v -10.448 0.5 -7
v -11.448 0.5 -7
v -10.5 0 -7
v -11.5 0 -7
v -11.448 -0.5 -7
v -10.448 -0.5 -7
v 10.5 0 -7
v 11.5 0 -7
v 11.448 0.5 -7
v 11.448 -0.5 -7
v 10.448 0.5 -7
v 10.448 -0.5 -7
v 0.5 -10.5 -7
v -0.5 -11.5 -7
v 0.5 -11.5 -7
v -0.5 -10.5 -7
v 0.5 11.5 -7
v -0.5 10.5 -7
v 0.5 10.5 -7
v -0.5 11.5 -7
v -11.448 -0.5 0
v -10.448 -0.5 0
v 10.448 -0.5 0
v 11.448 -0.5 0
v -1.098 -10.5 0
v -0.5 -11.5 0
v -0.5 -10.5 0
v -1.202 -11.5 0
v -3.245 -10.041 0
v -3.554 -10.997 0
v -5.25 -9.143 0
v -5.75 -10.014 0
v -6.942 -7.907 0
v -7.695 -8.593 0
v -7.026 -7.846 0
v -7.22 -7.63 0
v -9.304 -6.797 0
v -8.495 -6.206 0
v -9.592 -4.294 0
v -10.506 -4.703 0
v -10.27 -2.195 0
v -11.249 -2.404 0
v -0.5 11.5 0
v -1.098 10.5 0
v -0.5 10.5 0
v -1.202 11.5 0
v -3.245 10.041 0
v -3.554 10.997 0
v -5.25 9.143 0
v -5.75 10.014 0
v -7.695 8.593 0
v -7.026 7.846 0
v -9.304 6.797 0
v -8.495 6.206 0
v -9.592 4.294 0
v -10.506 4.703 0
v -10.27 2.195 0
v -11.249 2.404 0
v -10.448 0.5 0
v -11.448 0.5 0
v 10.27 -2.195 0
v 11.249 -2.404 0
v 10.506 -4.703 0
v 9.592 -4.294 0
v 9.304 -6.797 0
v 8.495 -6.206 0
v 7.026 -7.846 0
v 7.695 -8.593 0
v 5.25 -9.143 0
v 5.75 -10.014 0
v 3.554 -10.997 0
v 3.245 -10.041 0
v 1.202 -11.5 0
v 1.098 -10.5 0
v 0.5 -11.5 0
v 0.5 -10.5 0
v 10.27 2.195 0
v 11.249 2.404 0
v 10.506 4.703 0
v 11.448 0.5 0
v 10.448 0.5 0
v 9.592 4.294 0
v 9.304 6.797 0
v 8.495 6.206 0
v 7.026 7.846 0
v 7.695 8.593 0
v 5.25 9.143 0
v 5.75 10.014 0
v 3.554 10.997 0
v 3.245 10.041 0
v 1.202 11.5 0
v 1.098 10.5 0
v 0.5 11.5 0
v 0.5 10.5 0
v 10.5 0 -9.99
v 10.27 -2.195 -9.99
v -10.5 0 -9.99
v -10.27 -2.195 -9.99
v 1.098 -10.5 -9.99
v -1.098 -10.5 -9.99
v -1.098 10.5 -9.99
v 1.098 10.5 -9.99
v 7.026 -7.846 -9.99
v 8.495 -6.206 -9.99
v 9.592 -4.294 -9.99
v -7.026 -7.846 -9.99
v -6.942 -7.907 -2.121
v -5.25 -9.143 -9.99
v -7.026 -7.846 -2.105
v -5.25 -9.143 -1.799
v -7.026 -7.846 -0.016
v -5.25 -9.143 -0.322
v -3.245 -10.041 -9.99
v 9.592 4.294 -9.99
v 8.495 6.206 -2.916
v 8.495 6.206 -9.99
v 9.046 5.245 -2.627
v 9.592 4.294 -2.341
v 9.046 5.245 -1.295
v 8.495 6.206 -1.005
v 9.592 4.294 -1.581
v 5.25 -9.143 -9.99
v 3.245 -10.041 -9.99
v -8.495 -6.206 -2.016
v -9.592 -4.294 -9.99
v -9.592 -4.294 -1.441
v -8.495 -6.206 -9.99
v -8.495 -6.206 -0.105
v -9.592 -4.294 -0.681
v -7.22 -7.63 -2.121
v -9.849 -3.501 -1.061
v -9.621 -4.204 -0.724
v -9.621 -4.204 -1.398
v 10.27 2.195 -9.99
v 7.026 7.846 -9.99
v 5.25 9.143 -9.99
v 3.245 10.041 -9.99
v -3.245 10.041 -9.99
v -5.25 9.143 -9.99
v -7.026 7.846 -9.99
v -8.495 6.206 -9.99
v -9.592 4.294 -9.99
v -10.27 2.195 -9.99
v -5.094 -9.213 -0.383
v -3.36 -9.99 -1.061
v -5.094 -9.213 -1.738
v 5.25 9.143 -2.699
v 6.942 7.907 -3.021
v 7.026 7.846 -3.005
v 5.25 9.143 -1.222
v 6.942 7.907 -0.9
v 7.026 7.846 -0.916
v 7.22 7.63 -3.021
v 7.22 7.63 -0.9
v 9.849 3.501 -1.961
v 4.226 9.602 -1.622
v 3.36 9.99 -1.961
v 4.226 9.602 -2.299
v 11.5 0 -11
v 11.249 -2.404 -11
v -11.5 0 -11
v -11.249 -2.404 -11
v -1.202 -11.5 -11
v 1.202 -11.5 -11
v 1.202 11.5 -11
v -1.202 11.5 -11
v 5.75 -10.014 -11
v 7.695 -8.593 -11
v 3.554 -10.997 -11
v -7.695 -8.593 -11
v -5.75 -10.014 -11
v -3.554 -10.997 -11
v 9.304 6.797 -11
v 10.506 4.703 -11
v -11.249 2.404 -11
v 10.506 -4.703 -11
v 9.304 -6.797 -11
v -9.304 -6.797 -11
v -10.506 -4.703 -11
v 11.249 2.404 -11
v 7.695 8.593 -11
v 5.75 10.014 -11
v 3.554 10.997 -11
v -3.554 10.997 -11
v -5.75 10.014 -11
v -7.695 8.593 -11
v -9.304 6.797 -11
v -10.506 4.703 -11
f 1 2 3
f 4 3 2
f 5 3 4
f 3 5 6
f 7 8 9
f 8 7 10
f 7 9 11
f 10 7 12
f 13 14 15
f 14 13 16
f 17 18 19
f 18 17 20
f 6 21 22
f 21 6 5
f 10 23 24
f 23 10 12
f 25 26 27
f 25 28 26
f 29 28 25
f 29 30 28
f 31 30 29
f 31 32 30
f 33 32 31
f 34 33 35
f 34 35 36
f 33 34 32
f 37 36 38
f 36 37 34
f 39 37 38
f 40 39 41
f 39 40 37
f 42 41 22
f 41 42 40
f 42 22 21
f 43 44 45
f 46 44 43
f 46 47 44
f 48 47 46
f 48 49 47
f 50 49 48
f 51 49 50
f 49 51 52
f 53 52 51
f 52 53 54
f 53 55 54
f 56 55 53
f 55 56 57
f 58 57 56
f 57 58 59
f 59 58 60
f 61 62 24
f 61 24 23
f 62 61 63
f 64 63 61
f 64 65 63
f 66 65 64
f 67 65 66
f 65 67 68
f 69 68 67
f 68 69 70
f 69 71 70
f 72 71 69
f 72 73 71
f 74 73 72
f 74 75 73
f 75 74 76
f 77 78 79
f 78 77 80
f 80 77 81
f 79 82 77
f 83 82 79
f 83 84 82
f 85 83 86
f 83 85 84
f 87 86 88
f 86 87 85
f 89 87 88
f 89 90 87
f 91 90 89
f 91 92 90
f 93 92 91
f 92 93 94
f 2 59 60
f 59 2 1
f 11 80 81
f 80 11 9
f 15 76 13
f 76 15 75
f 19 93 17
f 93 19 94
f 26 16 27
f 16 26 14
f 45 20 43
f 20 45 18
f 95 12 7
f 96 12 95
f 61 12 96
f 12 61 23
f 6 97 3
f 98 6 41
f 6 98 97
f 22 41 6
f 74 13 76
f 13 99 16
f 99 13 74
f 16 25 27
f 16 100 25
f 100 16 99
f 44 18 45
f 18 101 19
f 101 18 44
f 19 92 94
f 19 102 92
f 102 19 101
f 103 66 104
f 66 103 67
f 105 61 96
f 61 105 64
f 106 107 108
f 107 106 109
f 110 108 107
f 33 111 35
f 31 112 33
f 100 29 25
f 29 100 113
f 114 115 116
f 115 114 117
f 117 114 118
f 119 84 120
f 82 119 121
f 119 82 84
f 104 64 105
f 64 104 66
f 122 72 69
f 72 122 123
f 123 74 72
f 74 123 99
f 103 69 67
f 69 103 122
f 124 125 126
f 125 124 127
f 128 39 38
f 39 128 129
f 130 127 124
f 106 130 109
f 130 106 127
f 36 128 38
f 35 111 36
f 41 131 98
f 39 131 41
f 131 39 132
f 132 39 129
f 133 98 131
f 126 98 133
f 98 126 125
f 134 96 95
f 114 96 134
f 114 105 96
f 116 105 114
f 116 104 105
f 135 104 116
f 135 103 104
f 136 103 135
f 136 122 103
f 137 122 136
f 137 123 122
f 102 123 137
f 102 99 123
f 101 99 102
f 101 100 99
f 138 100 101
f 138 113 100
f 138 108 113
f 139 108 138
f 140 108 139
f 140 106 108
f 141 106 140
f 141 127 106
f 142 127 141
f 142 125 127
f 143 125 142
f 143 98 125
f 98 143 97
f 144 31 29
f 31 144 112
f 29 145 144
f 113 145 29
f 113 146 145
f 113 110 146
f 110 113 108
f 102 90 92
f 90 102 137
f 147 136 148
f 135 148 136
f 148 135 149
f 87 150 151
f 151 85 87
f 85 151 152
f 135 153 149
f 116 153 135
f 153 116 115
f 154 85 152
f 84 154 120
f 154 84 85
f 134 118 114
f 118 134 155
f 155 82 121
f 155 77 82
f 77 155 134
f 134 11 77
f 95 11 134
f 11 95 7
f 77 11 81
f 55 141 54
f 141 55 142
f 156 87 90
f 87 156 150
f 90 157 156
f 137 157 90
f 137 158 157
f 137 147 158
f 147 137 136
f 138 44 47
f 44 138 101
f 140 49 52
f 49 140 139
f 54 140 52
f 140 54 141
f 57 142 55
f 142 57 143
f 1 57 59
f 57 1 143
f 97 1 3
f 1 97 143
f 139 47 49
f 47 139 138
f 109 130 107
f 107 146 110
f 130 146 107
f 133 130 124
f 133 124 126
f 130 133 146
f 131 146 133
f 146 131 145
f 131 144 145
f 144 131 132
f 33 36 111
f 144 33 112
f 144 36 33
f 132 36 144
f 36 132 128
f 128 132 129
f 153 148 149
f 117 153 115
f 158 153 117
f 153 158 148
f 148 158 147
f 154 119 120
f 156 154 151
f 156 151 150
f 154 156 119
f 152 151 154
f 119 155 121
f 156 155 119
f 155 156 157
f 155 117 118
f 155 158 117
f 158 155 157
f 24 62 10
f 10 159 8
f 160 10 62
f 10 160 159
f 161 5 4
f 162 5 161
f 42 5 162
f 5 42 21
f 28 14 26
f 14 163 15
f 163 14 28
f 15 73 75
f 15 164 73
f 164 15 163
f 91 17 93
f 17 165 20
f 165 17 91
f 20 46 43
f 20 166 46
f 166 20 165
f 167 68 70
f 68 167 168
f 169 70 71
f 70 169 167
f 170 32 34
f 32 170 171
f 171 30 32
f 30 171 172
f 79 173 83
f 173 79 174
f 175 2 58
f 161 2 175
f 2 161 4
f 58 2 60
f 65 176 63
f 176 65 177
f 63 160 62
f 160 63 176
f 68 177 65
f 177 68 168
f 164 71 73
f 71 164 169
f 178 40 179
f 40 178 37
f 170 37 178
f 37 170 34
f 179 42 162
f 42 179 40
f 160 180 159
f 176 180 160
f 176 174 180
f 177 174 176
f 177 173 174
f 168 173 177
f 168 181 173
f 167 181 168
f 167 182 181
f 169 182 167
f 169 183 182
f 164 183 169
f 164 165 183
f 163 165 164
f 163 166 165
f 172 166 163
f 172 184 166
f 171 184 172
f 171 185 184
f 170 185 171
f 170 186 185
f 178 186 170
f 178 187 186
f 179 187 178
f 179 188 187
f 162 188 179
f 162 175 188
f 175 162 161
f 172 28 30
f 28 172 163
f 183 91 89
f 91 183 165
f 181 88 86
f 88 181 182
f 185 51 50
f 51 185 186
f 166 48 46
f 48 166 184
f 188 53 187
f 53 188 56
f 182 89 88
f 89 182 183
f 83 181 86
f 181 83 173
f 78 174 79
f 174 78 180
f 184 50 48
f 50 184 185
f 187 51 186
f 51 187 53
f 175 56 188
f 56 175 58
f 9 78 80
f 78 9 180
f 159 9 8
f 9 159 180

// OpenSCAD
include <../../lib/relativity.scad/relativity.scad> // https://github.com/davidson16807/relativity.scad

// angel valve outlet cap

diameter = 21;       // 1/2 inch pipe
height = 10;
slit_height = 7;
thickness = 1;
$fn = 30;

module ridge() {
  rotated(45*z) translated(diameter/2*y) rotated(-45*x) box([diameter, 1.5, 1.5], anchor=y-z);
}


rotated(180*x)
intersection() {
  differed("cut", "not(cut)") {
    difference() {
      box([diameter*2, diameter*2, height*3]);
      translated(-0.01*z) rod(d=diameter, h=height, anchor=bottom);
    }
    ridge();
    translated(0.9*z) rotated(180*z) ridge(); 
    rotated(90*z, n=[0,1]) box([diameter+thickness*3, 1, slit_height], anchor=bottom, $class="cut");
  }
  rod(d=diameter+thickness*2, h=height+thickness, anchor=bottom);
}
